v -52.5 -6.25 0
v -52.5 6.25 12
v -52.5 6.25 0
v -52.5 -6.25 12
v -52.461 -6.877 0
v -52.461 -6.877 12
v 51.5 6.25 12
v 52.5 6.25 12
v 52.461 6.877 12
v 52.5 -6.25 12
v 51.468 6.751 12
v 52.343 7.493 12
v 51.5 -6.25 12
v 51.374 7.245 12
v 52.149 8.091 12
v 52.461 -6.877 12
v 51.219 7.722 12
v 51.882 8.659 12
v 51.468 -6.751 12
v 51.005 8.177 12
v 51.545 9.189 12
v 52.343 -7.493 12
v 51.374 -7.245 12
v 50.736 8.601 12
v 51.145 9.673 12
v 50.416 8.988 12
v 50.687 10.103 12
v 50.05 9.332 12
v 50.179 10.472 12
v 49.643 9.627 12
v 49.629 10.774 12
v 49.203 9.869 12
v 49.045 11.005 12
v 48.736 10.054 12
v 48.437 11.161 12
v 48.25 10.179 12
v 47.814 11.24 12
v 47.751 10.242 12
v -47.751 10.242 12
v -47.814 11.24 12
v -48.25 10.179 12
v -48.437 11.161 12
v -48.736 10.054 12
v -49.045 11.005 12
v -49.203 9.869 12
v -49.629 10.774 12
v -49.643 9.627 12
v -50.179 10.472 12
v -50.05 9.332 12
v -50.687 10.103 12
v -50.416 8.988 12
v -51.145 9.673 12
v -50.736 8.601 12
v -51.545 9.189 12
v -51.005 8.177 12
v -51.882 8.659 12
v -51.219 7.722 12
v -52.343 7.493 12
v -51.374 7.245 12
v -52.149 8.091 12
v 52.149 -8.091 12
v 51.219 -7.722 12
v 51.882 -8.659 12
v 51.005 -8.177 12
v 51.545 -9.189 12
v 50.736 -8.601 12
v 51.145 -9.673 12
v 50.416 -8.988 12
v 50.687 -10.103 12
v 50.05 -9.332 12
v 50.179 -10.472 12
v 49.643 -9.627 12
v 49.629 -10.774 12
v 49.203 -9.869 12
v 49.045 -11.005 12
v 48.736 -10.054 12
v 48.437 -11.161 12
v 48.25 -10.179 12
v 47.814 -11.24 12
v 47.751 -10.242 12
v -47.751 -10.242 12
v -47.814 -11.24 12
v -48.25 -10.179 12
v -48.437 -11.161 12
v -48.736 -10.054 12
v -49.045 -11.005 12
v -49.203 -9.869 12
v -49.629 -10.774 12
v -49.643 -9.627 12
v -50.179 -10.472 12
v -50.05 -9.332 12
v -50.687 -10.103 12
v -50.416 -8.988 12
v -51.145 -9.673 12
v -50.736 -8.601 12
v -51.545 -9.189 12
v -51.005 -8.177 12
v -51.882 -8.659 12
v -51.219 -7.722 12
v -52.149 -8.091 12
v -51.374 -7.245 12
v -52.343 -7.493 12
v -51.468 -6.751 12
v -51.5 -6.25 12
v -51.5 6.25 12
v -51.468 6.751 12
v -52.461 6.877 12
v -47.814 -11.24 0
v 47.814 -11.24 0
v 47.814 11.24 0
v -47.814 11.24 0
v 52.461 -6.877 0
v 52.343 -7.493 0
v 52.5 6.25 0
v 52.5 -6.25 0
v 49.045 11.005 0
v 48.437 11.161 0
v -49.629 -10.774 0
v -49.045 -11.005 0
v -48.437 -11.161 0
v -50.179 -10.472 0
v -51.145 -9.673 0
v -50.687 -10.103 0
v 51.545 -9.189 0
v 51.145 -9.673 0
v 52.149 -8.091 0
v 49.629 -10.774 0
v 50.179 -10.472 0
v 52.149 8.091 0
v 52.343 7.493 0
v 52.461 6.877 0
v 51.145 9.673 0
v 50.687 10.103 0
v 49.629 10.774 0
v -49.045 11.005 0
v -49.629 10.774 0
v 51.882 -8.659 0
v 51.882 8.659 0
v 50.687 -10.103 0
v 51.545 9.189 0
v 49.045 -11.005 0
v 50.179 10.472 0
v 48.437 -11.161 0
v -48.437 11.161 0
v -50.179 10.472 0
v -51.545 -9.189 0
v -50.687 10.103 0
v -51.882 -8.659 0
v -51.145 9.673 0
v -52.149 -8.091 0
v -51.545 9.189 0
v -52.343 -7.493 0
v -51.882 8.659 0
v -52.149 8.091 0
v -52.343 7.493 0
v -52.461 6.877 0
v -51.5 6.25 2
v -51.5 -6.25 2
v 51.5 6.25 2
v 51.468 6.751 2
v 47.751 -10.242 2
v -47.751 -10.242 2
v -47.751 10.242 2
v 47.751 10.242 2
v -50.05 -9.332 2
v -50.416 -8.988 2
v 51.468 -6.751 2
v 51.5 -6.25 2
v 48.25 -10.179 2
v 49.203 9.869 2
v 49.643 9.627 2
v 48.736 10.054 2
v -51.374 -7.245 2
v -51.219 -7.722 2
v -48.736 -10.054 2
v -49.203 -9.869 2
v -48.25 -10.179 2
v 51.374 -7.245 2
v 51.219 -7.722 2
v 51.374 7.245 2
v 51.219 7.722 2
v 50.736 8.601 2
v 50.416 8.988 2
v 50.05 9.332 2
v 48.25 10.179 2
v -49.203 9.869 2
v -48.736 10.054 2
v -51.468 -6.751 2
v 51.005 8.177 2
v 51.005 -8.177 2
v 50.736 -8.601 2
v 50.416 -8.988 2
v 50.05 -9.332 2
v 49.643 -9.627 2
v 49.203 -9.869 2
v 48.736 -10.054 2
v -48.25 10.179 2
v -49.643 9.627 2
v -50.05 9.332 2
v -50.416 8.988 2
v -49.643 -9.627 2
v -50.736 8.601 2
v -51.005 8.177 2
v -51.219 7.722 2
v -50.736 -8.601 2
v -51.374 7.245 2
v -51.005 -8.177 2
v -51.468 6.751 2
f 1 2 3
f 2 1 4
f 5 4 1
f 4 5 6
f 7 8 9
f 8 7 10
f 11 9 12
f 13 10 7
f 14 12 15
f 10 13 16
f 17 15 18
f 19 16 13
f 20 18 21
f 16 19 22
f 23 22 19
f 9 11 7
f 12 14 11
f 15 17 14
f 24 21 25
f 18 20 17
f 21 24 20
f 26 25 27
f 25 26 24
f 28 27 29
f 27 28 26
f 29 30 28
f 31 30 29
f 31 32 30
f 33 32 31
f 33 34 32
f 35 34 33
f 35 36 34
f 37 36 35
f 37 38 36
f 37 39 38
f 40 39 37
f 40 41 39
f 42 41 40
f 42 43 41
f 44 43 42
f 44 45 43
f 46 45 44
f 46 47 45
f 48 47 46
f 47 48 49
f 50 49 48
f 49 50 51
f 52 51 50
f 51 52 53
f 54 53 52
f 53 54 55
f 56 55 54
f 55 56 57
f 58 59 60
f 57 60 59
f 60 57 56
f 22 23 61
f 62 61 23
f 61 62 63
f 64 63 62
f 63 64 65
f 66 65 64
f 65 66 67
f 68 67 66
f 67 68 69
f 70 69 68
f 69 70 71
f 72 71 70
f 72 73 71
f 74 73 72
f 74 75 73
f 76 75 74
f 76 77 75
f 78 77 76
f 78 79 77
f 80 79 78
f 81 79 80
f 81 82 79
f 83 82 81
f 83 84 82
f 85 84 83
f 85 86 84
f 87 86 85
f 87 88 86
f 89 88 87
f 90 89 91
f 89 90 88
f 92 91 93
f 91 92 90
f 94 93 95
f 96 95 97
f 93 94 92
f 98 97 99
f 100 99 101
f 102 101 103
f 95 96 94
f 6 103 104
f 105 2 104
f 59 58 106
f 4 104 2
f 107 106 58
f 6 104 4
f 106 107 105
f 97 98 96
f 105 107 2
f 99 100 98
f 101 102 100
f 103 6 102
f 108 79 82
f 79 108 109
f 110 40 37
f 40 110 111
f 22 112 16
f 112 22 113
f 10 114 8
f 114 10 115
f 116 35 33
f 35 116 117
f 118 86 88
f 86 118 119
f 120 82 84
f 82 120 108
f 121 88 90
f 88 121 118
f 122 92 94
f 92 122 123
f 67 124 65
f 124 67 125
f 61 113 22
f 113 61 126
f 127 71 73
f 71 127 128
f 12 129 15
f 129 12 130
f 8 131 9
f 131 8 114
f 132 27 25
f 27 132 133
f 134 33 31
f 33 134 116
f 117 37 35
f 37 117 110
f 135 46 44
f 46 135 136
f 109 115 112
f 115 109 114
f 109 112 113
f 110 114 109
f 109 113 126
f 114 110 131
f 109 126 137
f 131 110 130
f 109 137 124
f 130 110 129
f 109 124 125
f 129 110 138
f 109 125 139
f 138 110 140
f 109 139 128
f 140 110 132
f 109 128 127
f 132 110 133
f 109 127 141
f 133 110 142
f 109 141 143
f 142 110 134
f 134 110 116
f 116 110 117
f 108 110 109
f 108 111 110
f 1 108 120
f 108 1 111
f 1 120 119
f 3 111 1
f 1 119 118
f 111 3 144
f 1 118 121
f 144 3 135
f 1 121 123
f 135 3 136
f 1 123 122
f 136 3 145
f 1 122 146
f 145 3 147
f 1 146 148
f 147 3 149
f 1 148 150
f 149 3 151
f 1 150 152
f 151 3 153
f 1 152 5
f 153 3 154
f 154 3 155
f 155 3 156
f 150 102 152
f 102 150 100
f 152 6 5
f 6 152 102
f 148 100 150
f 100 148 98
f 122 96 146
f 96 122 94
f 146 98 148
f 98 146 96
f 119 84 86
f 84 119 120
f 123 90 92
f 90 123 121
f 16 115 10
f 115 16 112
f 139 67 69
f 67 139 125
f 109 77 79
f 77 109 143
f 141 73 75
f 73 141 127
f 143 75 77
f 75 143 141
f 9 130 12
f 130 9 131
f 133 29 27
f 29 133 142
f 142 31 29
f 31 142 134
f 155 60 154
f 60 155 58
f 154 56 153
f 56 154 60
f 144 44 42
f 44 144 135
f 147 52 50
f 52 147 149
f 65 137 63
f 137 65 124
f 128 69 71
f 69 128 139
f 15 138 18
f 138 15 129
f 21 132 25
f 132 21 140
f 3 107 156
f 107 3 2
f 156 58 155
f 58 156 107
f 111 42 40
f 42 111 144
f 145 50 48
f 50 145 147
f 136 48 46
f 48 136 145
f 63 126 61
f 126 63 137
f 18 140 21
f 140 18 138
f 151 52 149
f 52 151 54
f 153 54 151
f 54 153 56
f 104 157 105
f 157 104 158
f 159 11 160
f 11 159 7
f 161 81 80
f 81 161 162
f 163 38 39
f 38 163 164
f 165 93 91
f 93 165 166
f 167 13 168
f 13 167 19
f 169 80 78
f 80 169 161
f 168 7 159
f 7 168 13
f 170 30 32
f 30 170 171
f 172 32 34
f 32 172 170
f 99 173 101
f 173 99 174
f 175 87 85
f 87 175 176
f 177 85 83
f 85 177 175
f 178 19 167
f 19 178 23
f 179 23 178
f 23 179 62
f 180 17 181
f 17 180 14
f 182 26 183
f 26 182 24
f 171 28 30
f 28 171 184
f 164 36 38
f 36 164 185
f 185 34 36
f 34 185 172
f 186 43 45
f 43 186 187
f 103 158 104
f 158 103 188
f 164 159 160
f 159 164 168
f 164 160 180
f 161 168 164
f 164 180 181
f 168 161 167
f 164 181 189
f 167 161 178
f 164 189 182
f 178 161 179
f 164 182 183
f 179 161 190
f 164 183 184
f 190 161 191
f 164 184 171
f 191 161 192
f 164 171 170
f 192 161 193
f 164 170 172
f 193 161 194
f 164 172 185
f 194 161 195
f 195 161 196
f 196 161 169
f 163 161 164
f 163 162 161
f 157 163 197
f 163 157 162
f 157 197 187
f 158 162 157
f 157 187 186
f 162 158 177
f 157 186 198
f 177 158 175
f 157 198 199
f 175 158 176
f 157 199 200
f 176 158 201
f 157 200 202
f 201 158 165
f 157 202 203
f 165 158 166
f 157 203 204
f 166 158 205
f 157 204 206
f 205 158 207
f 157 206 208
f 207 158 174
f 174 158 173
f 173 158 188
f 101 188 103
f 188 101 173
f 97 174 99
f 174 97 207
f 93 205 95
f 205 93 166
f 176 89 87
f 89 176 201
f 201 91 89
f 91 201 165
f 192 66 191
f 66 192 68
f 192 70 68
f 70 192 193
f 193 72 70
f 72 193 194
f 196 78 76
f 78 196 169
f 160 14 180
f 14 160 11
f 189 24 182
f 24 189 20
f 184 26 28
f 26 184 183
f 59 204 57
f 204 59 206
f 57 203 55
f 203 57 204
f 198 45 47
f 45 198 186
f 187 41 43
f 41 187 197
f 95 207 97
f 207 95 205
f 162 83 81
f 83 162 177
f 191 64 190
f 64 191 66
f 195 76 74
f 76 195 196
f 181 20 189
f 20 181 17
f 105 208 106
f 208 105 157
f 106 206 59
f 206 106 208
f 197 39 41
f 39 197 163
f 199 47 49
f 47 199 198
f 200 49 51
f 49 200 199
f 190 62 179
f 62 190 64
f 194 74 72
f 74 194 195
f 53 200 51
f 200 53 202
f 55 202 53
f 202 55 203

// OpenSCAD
$fn = 50;


difference() {
	union() {
		hull() {
			translate(v = [-47.5000000000, 6.2500000000, 0]) {
				cylinder(h = 12, r = 5);
			}
			translate(v = [47.5000000000, 6.2500000000, 0]) {
				cylinder(h = 12, r = 5);
			}
			translate(v = [-47.5000000000, -6.2500000000, 0]) {
				cylinder(h = 12, r = 5);
			}
			translate(v = [47.5000000000, -6.2500000000, 0]) {
				cylinder(h = 12, r = 5);
			}
		}
	}
	union() {
		translate(v = [0, 0, 2]) {
			hull() {
				translate(v = [-47.5000000000, 6.2500000000, 0]) {
					cylinder(h = 10, r = 4);
				}
				translate(v = [47.5000000000, 6.2500000000, 0]) {
					cylinder(h = 10, r = 4);
				}
				translate(v = [-47.5000000000, -6.2500000000, 0]) {
					cylinder(h = 10, r = 4);
				}
				translate(v = [47.5000000000, -6.2500000000, 0]) {
					cylinder(h = 10, r = 4);
				}
			}
		}
	}
}
